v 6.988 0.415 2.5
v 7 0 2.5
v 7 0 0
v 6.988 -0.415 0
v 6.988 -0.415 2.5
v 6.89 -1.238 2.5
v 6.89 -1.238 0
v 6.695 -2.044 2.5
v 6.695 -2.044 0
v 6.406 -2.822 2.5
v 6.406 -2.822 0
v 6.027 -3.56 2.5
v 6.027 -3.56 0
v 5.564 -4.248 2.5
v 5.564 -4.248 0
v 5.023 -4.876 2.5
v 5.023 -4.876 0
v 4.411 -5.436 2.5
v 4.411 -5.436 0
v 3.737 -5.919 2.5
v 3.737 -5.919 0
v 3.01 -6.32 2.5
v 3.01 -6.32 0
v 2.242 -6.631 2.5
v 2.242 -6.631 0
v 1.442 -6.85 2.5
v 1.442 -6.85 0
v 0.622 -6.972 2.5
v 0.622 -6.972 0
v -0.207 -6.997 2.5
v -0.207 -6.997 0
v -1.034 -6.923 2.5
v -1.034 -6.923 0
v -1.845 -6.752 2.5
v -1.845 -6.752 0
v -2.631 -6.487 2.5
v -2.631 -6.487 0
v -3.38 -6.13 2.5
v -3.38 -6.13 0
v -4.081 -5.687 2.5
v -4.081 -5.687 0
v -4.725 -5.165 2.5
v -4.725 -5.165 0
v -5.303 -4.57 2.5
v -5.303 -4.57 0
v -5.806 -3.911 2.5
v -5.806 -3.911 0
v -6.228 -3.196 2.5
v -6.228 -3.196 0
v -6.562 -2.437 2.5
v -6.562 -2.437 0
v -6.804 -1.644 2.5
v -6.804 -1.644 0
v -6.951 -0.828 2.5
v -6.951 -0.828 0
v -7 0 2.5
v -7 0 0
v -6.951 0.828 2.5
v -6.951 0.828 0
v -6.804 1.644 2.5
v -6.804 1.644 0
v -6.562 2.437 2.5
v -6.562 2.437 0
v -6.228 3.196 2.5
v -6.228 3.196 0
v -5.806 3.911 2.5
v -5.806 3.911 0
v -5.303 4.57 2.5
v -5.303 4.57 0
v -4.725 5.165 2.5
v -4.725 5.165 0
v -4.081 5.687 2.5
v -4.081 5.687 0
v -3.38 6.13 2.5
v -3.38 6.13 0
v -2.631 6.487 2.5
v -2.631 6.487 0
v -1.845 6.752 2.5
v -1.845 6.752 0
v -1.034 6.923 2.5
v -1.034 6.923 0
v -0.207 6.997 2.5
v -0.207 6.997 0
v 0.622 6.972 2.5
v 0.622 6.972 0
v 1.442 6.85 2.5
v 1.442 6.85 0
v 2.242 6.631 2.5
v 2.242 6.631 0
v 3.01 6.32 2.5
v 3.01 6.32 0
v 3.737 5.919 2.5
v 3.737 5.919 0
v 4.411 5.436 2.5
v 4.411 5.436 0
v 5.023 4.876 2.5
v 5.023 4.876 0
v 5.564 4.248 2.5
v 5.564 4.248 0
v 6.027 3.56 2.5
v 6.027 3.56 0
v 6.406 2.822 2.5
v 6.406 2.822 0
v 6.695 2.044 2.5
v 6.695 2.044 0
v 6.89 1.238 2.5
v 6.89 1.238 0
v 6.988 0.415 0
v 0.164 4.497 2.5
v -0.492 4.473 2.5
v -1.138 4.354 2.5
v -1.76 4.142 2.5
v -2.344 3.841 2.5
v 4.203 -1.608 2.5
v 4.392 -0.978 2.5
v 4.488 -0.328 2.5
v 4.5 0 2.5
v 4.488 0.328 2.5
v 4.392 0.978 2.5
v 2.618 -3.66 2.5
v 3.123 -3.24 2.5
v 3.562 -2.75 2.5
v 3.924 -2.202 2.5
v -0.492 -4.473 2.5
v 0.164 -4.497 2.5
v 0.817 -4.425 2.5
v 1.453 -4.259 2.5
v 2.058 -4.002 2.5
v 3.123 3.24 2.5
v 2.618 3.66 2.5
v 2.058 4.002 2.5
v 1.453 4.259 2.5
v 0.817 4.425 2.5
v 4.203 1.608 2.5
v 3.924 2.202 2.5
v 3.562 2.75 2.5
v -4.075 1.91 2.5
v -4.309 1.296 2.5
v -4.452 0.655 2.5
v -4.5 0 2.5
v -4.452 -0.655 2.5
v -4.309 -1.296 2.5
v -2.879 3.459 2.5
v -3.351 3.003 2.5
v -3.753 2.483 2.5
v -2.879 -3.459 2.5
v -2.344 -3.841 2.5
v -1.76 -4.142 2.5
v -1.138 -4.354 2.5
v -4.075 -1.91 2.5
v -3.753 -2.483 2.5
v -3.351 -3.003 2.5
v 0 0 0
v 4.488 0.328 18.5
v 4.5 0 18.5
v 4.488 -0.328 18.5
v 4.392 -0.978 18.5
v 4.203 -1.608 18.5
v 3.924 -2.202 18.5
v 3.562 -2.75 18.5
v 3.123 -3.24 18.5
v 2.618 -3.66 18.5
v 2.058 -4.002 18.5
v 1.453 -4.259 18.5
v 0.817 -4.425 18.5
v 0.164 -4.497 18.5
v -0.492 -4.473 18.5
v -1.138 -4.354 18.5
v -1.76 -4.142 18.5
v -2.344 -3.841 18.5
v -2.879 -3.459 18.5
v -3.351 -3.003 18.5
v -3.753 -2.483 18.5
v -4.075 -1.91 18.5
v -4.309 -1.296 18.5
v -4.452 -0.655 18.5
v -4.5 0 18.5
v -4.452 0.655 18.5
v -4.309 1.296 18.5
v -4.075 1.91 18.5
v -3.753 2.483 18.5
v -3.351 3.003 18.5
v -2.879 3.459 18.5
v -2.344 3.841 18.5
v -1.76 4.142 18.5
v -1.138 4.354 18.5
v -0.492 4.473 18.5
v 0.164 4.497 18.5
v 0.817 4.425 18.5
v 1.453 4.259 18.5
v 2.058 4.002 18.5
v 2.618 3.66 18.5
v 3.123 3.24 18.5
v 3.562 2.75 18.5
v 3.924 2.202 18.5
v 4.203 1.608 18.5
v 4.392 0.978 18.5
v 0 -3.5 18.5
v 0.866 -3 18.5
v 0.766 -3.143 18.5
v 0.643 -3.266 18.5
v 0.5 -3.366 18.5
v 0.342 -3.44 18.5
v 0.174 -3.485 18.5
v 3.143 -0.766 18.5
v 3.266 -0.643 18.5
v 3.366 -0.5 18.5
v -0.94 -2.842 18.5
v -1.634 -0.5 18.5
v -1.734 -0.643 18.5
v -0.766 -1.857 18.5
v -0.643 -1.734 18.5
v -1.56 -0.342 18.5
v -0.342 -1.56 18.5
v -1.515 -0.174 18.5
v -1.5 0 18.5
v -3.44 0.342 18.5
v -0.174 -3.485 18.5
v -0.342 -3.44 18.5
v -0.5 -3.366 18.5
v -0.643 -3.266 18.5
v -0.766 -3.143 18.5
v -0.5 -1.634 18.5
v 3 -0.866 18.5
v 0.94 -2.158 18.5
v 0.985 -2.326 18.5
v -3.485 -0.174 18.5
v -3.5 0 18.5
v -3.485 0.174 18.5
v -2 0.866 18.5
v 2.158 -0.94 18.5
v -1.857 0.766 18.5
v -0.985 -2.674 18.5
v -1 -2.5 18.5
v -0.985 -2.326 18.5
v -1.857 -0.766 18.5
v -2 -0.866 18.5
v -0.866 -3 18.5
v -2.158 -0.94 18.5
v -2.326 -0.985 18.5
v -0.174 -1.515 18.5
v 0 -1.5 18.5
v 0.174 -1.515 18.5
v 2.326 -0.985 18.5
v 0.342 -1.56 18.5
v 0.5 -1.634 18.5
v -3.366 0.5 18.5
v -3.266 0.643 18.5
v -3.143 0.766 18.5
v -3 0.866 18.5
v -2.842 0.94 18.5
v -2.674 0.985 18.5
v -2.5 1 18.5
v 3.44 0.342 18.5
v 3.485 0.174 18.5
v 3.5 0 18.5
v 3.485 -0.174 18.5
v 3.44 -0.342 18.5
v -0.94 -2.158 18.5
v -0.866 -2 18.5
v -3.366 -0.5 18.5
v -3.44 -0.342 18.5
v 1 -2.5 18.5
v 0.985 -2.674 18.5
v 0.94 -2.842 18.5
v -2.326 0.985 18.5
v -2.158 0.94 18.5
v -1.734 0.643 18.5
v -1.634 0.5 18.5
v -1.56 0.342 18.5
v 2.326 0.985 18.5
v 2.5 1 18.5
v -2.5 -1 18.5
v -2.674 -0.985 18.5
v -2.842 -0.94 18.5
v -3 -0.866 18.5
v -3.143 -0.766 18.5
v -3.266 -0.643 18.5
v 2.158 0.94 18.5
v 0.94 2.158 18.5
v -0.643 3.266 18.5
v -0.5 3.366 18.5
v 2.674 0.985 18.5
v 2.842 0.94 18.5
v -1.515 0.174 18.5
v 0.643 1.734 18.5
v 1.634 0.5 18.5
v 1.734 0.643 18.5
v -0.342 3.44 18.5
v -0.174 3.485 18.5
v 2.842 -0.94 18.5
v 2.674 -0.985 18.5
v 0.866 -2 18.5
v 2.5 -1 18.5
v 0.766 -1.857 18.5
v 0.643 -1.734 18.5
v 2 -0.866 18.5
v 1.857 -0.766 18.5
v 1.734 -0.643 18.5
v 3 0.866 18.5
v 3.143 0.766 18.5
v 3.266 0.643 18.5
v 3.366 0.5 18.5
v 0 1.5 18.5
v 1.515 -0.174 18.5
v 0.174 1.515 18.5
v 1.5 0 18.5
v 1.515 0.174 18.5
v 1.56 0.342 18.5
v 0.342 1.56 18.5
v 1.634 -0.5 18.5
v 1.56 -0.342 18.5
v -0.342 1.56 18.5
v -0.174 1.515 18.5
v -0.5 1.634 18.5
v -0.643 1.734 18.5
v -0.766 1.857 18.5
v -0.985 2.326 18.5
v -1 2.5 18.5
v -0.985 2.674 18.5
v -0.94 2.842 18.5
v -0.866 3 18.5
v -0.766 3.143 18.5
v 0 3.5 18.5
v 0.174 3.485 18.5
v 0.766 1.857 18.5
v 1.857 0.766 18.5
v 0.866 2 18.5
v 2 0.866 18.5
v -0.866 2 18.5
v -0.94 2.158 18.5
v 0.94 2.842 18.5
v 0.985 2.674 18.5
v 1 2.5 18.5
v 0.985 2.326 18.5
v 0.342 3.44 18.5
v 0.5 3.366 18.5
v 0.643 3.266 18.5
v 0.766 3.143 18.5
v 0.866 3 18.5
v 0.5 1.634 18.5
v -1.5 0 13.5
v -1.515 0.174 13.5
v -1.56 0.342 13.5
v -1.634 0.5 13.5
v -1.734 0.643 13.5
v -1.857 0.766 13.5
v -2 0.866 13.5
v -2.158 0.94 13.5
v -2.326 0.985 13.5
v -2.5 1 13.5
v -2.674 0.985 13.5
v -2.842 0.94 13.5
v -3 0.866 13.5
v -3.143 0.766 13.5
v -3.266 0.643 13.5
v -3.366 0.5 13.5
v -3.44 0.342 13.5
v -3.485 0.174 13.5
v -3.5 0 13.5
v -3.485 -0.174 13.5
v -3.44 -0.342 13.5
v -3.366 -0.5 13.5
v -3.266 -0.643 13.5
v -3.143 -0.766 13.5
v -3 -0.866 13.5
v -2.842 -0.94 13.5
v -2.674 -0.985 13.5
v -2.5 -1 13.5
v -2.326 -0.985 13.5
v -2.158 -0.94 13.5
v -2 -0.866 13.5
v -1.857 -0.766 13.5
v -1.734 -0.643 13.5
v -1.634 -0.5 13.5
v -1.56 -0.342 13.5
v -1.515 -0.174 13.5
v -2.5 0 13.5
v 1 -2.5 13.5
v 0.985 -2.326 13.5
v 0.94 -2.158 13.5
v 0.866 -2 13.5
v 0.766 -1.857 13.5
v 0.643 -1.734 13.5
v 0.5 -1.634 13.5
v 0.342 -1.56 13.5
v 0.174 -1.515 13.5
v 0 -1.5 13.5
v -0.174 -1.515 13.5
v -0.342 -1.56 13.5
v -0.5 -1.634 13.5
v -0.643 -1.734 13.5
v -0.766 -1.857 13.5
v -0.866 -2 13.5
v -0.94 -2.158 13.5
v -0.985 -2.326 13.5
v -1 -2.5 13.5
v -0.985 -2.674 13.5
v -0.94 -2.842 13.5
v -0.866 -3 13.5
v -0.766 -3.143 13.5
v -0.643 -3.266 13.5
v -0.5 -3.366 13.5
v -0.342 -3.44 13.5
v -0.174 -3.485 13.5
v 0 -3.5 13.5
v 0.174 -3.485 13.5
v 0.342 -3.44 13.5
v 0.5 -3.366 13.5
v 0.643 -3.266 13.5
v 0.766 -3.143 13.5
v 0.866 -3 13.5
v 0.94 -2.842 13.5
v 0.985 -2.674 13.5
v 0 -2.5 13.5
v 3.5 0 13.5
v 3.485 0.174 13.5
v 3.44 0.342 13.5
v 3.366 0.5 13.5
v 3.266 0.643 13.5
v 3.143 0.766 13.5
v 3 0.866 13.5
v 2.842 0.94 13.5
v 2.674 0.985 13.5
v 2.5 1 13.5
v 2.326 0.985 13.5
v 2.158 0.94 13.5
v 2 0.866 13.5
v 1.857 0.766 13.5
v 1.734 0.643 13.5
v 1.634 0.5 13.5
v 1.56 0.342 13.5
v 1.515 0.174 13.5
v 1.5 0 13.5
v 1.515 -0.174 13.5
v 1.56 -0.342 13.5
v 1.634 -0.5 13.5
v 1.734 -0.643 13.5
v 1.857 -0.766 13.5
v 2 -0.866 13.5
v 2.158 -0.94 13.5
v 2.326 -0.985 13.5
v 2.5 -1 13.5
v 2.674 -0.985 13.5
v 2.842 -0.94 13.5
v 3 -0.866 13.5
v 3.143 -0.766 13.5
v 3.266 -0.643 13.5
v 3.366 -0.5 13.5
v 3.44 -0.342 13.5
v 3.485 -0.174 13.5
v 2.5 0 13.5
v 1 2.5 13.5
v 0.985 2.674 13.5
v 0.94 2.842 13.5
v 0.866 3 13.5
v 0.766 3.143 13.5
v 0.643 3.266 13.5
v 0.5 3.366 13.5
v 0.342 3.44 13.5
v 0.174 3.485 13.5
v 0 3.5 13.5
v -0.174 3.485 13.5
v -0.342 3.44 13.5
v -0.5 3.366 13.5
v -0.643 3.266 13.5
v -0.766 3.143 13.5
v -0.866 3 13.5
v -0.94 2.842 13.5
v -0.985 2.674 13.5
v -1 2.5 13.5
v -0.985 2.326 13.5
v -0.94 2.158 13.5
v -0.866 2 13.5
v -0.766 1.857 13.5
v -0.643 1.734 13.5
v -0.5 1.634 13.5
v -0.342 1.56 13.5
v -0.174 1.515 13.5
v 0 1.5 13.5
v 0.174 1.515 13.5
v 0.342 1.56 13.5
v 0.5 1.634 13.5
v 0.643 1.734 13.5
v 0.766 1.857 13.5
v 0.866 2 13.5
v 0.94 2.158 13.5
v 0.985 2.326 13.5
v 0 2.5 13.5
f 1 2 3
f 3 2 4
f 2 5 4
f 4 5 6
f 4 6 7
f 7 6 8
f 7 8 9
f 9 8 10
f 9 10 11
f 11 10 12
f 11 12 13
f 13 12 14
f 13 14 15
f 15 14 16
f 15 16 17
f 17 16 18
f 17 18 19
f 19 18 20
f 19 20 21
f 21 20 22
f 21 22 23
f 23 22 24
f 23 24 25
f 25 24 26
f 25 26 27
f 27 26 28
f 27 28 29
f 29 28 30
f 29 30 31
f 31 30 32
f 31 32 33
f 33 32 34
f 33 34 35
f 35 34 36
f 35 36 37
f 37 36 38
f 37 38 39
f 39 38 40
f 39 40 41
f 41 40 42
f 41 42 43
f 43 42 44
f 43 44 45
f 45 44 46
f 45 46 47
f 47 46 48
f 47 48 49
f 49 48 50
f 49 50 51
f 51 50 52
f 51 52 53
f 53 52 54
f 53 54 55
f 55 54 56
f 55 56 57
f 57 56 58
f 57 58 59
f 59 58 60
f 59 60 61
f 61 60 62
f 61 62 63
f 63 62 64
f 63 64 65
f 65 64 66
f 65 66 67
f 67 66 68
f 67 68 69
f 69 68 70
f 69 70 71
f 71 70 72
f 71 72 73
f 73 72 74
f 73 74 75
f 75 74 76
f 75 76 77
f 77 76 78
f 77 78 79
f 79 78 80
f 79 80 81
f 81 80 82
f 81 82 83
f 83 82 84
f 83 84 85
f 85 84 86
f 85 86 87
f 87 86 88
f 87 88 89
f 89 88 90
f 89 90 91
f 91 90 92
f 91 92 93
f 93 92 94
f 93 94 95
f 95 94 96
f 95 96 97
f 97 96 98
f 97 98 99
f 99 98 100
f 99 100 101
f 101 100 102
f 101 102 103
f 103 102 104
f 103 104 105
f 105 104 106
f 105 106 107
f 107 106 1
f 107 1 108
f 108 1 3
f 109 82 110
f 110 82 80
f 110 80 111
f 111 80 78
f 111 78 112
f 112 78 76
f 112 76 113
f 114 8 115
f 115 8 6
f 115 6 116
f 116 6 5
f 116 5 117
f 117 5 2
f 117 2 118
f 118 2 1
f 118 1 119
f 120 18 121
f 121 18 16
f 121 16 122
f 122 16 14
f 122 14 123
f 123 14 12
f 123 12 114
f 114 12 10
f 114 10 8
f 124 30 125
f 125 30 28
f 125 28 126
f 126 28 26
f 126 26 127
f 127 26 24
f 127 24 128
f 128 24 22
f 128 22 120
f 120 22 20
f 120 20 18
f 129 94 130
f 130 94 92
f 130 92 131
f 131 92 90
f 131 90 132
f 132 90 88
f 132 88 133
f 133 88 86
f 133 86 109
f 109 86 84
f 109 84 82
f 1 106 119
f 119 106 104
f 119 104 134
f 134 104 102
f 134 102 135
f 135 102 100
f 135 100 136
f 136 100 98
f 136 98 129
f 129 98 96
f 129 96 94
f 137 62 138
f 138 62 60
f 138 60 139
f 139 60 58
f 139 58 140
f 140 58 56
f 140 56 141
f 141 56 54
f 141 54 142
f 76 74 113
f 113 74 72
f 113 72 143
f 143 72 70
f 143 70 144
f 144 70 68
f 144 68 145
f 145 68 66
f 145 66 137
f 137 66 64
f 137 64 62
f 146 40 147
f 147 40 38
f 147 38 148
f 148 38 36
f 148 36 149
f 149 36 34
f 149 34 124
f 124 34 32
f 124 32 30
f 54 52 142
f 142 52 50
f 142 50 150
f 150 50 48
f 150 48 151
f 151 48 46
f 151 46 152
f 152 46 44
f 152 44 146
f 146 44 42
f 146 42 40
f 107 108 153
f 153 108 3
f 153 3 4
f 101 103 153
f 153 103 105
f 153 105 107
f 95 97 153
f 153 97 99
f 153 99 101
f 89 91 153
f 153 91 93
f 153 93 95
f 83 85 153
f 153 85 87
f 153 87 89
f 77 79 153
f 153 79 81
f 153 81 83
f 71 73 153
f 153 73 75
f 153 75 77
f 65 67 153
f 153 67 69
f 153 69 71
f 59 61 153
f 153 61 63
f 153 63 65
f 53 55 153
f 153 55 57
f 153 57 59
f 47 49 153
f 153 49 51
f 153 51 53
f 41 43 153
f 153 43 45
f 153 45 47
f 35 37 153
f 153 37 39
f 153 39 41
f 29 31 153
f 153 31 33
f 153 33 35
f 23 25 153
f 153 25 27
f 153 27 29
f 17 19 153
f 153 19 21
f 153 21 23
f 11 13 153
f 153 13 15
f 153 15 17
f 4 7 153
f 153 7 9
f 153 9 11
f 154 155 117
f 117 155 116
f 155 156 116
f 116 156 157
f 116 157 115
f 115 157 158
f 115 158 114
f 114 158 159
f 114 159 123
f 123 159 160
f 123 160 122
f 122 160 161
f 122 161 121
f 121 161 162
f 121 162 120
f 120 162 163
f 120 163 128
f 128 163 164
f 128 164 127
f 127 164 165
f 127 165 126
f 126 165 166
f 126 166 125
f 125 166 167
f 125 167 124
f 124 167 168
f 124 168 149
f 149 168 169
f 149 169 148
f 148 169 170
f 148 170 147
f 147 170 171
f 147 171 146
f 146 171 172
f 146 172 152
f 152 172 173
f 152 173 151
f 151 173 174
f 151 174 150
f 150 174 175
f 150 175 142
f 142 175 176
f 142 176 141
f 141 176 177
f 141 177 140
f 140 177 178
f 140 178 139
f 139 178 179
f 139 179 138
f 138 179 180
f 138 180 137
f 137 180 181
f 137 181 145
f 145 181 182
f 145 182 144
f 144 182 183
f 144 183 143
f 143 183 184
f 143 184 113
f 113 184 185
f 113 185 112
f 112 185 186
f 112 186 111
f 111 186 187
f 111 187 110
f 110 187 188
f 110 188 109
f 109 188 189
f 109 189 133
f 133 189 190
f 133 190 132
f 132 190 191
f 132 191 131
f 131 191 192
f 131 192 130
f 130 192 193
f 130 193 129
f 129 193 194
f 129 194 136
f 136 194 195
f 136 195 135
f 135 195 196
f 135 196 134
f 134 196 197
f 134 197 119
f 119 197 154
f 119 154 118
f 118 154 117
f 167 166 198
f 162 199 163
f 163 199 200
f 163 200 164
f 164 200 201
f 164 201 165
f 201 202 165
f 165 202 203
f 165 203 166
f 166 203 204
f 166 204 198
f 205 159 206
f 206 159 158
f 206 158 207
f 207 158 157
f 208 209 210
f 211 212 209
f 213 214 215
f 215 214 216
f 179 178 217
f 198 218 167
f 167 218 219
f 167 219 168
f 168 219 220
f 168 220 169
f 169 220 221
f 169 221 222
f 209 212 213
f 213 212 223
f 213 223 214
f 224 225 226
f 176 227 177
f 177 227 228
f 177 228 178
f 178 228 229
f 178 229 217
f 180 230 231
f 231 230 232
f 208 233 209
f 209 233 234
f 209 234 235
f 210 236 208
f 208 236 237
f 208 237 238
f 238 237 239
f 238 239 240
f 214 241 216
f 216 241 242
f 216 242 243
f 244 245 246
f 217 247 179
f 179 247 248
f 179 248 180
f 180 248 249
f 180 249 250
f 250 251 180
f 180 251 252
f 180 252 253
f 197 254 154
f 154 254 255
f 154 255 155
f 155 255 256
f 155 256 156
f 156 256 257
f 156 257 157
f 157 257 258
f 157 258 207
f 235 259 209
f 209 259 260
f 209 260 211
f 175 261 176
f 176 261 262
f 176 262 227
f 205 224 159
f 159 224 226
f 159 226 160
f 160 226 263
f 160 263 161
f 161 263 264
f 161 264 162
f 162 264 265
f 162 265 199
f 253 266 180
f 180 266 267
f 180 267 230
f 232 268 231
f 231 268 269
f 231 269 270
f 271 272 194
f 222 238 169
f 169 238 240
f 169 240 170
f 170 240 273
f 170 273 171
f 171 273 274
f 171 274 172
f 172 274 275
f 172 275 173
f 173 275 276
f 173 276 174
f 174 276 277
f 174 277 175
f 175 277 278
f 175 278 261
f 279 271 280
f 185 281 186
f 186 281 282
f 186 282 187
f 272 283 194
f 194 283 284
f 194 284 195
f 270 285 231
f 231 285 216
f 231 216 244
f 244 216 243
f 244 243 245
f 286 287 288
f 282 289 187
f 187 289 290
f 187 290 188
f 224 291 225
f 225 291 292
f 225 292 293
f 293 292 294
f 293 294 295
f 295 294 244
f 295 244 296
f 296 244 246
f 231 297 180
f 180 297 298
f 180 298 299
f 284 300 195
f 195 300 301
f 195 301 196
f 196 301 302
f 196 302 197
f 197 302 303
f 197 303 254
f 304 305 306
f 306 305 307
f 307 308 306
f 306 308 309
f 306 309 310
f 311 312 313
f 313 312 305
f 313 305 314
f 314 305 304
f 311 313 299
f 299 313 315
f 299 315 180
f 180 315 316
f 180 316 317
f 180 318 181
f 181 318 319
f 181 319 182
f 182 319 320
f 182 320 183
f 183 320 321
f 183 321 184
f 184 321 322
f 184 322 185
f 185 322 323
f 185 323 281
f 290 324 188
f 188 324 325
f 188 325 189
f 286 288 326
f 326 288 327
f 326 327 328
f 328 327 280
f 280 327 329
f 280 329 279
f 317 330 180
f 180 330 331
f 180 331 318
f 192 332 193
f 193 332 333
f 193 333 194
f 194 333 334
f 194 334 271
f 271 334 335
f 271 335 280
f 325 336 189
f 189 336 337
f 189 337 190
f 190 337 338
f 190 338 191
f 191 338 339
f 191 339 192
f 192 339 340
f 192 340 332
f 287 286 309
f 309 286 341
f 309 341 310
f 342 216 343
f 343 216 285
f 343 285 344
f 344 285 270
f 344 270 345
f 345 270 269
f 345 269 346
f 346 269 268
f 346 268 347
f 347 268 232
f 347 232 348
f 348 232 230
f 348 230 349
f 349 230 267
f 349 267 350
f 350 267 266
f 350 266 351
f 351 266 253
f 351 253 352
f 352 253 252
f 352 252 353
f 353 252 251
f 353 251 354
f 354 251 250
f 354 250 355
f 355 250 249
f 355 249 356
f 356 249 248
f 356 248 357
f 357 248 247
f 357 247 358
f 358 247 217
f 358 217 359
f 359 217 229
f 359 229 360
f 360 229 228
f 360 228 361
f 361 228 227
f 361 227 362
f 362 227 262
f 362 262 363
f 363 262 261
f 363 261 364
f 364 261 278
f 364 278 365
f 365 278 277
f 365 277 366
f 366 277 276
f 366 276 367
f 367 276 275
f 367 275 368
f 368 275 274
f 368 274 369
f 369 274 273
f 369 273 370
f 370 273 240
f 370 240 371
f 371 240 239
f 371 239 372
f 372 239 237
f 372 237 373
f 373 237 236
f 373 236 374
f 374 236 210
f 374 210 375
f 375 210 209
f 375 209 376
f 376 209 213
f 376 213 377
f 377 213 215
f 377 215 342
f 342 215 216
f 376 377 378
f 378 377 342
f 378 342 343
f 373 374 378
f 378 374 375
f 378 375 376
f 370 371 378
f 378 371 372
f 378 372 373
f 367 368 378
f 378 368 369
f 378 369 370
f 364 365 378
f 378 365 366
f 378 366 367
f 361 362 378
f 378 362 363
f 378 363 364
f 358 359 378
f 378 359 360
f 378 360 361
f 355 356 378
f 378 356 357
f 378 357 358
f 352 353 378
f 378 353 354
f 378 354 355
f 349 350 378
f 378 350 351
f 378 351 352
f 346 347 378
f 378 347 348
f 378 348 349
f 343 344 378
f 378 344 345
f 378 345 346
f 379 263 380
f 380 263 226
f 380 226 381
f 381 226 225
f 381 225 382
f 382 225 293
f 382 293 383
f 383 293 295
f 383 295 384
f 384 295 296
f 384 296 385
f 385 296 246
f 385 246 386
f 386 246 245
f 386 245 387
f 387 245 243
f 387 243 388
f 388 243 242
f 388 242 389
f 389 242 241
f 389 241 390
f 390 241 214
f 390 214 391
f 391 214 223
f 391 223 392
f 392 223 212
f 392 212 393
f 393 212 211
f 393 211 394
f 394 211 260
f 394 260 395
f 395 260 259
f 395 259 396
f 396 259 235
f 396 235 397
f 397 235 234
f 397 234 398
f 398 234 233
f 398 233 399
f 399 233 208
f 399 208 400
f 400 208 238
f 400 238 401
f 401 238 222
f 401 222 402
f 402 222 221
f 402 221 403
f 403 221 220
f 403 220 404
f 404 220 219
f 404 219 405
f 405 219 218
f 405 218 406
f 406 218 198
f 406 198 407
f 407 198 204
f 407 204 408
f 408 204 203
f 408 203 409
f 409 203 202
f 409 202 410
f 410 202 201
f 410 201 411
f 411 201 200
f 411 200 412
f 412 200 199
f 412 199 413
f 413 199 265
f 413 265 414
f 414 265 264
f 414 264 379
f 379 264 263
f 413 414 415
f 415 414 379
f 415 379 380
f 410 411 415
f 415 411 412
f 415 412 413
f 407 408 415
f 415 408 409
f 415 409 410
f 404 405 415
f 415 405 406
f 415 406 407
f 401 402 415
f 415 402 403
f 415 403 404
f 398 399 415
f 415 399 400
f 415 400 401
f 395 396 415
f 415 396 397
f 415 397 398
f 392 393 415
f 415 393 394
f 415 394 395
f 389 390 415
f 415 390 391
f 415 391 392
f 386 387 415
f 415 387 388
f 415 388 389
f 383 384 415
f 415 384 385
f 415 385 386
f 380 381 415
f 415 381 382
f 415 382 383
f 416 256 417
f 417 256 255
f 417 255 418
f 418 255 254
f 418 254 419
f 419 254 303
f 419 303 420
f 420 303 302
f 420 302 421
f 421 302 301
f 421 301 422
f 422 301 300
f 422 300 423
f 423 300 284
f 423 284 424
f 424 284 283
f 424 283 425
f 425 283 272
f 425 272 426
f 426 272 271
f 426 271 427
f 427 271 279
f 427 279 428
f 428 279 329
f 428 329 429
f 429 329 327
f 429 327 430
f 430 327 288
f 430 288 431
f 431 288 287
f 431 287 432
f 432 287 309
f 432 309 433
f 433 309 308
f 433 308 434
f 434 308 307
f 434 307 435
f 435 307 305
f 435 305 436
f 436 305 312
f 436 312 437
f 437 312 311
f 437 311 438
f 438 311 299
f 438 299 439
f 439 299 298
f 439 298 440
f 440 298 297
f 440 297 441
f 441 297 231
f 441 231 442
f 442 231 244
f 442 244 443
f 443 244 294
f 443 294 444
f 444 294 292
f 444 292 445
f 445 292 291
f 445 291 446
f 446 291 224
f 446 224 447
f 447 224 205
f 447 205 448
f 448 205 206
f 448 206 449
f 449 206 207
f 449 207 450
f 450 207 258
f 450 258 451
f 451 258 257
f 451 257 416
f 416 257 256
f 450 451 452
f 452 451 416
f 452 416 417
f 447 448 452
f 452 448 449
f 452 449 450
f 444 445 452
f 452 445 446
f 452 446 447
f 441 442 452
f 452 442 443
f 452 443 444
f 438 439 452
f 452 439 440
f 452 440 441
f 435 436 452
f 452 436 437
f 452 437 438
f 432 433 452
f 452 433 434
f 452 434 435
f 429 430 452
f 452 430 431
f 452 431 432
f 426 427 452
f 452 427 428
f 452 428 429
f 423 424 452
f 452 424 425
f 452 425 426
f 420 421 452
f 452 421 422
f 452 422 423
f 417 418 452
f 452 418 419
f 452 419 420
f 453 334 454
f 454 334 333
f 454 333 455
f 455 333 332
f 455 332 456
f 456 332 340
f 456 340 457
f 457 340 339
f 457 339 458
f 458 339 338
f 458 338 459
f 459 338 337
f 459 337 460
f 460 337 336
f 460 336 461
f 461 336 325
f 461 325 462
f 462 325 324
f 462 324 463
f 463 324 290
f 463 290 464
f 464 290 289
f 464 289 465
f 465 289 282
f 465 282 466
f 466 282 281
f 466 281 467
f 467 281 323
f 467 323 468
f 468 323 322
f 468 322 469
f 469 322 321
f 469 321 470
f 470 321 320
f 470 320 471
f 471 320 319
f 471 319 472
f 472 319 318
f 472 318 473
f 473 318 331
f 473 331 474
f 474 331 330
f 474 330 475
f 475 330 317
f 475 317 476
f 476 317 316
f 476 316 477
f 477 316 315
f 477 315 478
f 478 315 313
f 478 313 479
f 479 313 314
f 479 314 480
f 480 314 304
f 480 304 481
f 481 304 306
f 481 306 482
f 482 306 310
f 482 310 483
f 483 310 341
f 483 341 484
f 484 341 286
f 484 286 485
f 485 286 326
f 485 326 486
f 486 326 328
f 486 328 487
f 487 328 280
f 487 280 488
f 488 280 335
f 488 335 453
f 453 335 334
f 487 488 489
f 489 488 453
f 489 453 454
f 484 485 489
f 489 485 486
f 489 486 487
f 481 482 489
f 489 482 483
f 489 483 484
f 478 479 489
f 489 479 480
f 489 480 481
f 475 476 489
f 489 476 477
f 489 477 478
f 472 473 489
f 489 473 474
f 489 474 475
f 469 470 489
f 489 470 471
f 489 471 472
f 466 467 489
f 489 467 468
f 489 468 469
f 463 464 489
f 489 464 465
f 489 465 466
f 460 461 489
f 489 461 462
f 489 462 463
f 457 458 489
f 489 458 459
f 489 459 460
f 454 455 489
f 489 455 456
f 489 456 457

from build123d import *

# Parameters (mm, degrees)
SKETCH1_R           = 7
BOSS_EXTRUDE1_DEPTH = 2.5
SKETCH2_R           = 4.5
BOSS_EXTRUDE2_DEPTH = 16
SKETCH3_R           = 1
CUT_EXTRUDE1_DEPTH  = 5


with BuildPart() as part:
    # Sketch1 → Boss-Extrude1 (new body)
    with BuildSketch(Plane.XY):
        Circle(SKETCH1_R)
    extrude(amount=BOSS_EXTRUDE1_DEPTH)

    # Sketch2 → Boss-Extrude2 (add)
    with BuildSketch(Plane.XY.offset(2.5)):
        Circle(SKETCH2_R)
    extrude(amount=BOSS_EXTRUDE2_DEPTH)

    # Sketch3 → Cut-Extrude1 (cut)
    with BuildSketch(Plane.XY.offset(18.5)):
        with Locations((0, 2.5)):
            Circle(SKETCH3_R)
        with Locations((2.5, 0)):
            Circle(SKETCH3_R)
        with Locations((0, -2.5)):
            Circle(SKETCH3_R)
        with Locations((-2.5, 0)):
            Circle(SKETCH3_R)
    extrude(amount=-CUT_EXTRUDE1_DEPTH, mode=Mode.SUBTRACT)


solid = part.part
